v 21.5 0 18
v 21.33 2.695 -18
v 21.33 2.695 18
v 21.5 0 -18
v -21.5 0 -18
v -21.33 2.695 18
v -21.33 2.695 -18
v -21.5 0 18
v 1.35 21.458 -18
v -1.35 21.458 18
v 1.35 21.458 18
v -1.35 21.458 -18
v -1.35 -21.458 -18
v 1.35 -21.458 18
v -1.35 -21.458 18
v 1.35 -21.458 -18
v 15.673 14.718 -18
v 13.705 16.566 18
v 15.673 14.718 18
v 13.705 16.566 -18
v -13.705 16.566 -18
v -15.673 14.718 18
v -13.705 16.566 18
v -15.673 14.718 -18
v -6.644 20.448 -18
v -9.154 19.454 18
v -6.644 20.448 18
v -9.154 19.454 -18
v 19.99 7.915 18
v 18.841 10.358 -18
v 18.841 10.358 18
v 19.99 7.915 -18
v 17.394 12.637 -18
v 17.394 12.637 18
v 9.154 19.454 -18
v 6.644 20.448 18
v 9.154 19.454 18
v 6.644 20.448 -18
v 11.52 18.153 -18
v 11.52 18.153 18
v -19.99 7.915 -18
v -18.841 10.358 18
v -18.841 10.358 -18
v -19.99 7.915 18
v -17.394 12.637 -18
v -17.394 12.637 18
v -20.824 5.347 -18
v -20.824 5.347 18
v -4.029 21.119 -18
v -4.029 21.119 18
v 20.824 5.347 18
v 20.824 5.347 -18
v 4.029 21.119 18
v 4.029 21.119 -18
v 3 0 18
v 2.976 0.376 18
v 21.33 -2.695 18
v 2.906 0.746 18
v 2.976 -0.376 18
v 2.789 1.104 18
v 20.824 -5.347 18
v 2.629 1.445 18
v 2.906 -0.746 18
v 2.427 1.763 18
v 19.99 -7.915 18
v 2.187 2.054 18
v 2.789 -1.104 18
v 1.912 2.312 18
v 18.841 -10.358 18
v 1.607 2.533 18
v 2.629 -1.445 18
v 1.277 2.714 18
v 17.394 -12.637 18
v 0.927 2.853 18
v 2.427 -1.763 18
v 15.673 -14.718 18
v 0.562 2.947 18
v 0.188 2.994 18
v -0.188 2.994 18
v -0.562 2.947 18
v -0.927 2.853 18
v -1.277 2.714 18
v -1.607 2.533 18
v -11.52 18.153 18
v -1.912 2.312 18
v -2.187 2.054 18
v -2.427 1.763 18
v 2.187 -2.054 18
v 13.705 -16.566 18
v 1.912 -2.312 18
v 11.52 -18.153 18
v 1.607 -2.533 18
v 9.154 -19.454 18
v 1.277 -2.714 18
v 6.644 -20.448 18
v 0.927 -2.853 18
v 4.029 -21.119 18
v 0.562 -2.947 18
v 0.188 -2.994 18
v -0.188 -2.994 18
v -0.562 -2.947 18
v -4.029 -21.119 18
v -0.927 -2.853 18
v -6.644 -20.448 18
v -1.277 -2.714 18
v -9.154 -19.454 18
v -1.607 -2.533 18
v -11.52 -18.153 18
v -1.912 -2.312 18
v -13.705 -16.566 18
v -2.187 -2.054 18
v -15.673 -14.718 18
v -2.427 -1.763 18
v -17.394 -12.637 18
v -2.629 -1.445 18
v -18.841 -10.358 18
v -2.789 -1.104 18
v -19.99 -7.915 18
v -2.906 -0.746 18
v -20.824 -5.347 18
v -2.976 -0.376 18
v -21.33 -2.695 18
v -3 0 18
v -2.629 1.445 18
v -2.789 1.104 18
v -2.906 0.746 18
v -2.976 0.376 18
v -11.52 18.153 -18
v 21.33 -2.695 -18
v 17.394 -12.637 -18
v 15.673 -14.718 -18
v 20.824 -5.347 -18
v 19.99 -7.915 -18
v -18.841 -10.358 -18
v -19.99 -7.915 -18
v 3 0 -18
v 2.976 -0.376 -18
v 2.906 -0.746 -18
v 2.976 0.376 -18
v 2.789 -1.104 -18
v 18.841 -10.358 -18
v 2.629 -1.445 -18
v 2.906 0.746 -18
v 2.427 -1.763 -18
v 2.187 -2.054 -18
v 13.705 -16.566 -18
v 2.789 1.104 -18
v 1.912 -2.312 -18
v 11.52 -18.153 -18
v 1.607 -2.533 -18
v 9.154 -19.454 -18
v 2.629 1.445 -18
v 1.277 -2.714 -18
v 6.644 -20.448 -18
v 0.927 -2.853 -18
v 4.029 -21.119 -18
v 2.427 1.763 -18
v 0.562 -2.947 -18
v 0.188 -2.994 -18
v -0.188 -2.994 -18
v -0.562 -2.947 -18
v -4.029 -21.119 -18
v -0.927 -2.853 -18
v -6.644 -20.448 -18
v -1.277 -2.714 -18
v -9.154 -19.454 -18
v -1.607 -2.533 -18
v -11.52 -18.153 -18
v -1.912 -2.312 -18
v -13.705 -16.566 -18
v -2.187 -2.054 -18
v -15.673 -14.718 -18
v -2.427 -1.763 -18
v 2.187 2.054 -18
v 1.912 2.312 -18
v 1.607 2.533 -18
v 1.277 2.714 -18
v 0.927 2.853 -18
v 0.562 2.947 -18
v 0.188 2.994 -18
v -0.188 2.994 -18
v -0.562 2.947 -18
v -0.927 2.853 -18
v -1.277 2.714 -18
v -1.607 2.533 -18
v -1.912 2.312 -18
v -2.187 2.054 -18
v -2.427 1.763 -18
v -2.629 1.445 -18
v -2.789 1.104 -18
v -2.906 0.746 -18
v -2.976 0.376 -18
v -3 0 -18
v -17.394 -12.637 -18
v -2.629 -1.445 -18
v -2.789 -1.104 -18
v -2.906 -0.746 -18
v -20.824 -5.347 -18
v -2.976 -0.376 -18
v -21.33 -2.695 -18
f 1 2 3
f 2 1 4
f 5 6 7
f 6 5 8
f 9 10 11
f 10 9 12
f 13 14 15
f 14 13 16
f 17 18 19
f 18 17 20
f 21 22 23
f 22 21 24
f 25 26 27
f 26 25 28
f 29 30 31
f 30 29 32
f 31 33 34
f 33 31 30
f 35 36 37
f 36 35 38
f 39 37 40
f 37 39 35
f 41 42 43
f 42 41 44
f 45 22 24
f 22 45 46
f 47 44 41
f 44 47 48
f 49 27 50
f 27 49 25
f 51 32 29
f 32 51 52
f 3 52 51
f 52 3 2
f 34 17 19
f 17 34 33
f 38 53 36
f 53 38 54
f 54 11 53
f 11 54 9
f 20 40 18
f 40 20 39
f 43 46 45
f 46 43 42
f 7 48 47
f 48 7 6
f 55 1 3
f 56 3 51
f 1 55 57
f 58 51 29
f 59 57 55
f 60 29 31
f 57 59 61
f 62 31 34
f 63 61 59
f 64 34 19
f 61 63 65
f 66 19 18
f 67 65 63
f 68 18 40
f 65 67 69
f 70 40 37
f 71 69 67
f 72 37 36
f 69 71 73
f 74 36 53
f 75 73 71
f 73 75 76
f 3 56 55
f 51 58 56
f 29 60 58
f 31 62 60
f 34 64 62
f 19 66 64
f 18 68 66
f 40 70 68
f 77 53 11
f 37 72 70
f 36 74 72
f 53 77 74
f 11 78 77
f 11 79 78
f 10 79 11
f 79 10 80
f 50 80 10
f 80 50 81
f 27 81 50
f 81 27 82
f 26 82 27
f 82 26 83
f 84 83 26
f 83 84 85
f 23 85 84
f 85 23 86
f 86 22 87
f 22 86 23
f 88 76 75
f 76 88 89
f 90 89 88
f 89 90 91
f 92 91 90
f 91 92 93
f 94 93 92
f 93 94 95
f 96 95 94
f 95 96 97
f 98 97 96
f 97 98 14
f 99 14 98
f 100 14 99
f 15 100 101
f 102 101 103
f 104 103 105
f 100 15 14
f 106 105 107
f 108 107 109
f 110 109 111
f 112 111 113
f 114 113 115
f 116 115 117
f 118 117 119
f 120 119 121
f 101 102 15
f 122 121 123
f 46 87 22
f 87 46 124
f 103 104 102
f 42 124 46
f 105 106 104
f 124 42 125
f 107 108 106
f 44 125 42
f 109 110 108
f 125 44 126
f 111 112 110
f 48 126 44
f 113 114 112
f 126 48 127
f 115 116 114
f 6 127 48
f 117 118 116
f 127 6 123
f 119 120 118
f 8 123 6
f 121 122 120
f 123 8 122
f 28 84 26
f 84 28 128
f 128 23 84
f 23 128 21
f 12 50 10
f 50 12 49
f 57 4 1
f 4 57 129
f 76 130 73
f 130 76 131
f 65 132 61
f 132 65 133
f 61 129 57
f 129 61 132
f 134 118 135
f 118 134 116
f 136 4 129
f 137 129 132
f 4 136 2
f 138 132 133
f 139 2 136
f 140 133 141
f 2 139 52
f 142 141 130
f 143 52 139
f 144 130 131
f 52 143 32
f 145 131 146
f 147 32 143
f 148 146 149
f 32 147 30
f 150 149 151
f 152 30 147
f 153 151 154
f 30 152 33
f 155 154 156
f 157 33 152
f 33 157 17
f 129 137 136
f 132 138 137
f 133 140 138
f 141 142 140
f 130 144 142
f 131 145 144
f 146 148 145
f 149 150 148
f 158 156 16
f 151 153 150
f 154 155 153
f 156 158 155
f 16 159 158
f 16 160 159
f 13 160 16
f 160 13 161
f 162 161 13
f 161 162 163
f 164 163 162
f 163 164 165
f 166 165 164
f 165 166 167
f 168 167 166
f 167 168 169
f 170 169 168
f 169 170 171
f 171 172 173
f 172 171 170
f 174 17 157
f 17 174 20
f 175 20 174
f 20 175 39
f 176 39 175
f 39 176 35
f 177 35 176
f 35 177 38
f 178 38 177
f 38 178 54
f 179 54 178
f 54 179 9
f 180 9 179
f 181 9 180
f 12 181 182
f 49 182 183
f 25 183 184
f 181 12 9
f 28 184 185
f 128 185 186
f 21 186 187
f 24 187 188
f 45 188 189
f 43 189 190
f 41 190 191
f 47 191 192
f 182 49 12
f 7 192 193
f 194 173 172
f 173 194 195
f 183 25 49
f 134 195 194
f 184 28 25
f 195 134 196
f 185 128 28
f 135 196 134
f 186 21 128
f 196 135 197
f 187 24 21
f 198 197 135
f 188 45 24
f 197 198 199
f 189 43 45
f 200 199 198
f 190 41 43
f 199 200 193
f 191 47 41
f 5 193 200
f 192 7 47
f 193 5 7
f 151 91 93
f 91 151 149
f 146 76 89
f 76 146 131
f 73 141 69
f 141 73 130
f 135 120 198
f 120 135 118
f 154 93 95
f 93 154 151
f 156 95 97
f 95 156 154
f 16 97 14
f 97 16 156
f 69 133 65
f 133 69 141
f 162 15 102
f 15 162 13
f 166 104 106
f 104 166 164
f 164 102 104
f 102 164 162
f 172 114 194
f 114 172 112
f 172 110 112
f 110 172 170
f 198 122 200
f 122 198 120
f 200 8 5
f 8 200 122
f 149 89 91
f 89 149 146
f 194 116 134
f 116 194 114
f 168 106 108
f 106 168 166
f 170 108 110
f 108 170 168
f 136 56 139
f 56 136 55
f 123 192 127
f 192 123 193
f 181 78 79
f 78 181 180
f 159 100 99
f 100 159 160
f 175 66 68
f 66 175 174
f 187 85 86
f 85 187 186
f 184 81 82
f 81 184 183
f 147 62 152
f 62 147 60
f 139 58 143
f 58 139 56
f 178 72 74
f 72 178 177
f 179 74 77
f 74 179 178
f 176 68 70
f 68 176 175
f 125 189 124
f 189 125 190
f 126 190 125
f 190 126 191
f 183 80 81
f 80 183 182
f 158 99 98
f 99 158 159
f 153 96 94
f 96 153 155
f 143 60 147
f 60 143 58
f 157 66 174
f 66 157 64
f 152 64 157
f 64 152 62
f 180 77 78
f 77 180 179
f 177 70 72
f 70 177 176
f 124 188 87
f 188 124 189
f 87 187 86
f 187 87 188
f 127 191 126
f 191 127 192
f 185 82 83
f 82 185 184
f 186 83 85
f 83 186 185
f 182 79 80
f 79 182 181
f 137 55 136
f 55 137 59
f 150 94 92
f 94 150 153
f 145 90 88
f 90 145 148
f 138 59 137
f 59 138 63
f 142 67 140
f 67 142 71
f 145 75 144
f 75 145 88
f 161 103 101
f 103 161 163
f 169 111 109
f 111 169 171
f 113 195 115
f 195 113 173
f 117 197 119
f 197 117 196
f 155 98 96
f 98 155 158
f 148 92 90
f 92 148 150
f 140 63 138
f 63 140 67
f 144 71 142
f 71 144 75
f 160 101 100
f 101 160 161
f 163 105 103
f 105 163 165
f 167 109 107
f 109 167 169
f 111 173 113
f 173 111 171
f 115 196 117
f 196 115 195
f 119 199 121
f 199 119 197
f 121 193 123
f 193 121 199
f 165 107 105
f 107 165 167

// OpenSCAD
$fn = 50;


difference() {
	union() {
		translate(v = [0, 0, -18.0000000000]) {
			cylinder(h = 36, r = 21.5000000000);
		}
	}
	union() {
		translate(v = [0, 0, -100.0000000000]) {
			cylinder(h = 200, r = 3);
		}
	}
}
